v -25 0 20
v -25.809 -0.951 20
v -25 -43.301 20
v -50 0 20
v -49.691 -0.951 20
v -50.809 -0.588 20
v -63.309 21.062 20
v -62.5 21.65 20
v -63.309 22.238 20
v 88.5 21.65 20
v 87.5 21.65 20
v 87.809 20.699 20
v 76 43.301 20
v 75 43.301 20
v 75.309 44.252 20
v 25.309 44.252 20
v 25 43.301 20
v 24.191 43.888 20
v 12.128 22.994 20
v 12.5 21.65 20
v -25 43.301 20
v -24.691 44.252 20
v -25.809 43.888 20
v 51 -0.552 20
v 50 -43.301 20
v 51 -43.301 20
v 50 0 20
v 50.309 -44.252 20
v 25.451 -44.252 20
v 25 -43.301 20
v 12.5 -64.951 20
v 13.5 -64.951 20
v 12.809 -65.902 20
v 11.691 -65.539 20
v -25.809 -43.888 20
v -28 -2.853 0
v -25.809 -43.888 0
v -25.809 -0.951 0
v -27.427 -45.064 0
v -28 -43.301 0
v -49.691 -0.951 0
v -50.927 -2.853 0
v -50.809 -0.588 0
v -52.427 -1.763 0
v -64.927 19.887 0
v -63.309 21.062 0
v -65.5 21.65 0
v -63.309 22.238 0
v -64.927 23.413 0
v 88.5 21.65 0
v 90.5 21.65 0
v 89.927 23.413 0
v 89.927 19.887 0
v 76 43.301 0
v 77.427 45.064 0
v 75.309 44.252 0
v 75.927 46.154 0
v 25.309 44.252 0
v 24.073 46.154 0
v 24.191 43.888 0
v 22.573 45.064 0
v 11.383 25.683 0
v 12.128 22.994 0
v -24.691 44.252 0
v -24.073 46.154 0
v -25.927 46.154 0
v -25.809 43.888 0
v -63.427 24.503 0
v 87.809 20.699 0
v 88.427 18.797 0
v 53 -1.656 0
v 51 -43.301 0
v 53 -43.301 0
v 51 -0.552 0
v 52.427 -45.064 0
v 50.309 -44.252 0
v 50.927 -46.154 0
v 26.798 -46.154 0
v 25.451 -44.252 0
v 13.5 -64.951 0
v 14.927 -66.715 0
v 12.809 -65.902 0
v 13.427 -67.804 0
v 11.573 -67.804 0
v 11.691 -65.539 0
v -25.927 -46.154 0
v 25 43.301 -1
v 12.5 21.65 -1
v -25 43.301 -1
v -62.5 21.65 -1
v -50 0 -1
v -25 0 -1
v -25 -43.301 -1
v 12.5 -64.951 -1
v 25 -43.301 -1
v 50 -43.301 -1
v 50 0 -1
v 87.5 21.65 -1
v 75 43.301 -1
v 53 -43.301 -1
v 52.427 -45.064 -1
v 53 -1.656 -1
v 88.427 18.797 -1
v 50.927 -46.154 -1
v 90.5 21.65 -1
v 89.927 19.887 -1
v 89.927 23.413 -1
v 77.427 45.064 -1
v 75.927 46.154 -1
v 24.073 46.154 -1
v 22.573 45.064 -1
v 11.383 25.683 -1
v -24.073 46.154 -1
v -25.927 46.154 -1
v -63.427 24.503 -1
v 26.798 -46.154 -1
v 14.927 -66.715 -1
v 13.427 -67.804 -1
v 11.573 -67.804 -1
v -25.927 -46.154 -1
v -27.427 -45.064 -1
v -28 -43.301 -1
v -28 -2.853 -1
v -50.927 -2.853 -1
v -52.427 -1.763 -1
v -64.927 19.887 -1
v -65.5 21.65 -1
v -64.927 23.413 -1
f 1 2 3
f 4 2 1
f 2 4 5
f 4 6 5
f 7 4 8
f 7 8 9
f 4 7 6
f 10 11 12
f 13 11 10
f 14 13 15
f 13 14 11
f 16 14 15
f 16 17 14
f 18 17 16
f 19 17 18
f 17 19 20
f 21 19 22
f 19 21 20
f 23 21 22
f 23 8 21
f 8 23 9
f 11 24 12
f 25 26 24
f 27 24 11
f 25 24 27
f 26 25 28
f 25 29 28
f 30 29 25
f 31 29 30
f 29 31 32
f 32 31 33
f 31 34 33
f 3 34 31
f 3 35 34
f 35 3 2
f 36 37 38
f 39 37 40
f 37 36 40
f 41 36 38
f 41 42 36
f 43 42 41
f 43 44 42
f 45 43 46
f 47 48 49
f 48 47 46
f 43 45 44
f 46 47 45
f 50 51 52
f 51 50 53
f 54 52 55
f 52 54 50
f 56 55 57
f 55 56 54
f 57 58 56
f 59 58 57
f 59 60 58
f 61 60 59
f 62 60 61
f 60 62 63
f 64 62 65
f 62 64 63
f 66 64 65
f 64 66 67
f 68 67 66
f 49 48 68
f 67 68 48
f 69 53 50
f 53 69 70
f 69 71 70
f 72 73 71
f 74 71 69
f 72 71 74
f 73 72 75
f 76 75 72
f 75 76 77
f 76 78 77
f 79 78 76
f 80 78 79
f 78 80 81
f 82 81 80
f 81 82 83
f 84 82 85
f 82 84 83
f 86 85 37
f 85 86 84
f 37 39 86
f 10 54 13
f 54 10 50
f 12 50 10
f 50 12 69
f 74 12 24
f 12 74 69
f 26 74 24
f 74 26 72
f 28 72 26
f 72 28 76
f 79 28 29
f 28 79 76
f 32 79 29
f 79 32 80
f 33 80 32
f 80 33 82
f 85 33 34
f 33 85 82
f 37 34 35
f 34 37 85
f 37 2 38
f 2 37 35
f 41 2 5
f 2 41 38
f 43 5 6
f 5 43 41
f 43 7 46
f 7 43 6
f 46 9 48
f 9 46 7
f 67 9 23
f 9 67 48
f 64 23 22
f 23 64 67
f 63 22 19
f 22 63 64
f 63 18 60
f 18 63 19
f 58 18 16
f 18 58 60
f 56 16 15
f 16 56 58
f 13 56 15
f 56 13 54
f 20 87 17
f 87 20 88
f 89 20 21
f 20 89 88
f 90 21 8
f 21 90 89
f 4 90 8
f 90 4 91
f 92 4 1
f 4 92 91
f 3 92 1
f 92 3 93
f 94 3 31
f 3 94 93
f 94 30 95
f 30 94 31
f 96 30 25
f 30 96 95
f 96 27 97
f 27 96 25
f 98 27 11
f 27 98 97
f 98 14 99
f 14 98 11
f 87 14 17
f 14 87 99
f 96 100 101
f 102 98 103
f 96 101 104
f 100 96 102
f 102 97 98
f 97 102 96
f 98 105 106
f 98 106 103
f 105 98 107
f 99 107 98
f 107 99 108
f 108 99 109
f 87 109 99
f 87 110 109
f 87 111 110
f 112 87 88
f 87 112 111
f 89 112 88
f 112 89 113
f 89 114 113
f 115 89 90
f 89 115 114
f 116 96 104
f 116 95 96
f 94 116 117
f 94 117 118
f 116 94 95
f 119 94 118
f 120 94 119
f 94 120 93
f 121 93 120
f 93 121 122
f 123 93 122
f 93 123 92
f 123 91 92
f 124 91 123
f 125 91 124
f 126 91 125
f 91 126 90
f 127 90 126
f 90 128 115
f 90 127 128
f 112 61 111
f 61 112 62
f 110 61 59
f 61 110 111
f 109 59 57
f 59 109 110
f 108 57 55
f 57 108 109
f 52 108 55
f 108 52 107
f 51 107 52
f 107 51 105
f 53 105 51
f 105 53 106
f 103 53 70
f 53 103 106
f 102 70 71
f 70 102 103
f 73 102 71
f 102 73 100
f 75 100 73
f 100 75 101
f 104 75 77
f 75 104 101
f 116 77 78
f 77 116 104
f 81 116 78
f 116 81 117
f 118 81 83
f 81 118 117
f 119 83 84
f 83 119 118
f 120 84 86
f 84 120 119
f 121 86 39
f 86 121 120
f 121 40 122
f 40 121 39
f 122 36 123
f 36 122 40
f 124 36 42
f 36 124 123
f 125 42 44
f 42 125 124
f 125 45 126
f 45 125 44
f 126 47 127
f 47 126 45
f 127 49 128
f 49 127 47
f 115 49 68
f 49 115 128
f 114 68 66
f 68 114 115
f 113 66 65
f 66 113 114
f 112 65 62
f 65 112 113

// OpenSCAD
cutter_thickness = 1;
base_thickness = 3;
size = 50;
depth = 20;

r = [1,0];
u = [cos(60),sin(60)];
d = [cos(60),-sin(60)];

hat = [
    [0,0],
    1/2 * r,
    u,
    2*u + 1/2*d,
    r + u,
    u + 3/2*r,
    2*r,
    3*r - 1/2*u,
    2*r + d,
    r + d,
    r + 1/2 * d,
    d,
    -1/2 * u
 ];
 
module tile(points) {
    scale(size) translate(-r) polygon(points);
}

module outline(thickness) {
    difference() {
        #minkowski() { tile(hat); circle(thickness); };
        tile(hat);
    }
}

 
translate([0,0,depth])
rotate([180,0,0]) {
    linear_extrude(depth) outline(cutter_thickness);
    translate([0,0,depth]) linear_extrude(1) outline(base_thickness);
}
